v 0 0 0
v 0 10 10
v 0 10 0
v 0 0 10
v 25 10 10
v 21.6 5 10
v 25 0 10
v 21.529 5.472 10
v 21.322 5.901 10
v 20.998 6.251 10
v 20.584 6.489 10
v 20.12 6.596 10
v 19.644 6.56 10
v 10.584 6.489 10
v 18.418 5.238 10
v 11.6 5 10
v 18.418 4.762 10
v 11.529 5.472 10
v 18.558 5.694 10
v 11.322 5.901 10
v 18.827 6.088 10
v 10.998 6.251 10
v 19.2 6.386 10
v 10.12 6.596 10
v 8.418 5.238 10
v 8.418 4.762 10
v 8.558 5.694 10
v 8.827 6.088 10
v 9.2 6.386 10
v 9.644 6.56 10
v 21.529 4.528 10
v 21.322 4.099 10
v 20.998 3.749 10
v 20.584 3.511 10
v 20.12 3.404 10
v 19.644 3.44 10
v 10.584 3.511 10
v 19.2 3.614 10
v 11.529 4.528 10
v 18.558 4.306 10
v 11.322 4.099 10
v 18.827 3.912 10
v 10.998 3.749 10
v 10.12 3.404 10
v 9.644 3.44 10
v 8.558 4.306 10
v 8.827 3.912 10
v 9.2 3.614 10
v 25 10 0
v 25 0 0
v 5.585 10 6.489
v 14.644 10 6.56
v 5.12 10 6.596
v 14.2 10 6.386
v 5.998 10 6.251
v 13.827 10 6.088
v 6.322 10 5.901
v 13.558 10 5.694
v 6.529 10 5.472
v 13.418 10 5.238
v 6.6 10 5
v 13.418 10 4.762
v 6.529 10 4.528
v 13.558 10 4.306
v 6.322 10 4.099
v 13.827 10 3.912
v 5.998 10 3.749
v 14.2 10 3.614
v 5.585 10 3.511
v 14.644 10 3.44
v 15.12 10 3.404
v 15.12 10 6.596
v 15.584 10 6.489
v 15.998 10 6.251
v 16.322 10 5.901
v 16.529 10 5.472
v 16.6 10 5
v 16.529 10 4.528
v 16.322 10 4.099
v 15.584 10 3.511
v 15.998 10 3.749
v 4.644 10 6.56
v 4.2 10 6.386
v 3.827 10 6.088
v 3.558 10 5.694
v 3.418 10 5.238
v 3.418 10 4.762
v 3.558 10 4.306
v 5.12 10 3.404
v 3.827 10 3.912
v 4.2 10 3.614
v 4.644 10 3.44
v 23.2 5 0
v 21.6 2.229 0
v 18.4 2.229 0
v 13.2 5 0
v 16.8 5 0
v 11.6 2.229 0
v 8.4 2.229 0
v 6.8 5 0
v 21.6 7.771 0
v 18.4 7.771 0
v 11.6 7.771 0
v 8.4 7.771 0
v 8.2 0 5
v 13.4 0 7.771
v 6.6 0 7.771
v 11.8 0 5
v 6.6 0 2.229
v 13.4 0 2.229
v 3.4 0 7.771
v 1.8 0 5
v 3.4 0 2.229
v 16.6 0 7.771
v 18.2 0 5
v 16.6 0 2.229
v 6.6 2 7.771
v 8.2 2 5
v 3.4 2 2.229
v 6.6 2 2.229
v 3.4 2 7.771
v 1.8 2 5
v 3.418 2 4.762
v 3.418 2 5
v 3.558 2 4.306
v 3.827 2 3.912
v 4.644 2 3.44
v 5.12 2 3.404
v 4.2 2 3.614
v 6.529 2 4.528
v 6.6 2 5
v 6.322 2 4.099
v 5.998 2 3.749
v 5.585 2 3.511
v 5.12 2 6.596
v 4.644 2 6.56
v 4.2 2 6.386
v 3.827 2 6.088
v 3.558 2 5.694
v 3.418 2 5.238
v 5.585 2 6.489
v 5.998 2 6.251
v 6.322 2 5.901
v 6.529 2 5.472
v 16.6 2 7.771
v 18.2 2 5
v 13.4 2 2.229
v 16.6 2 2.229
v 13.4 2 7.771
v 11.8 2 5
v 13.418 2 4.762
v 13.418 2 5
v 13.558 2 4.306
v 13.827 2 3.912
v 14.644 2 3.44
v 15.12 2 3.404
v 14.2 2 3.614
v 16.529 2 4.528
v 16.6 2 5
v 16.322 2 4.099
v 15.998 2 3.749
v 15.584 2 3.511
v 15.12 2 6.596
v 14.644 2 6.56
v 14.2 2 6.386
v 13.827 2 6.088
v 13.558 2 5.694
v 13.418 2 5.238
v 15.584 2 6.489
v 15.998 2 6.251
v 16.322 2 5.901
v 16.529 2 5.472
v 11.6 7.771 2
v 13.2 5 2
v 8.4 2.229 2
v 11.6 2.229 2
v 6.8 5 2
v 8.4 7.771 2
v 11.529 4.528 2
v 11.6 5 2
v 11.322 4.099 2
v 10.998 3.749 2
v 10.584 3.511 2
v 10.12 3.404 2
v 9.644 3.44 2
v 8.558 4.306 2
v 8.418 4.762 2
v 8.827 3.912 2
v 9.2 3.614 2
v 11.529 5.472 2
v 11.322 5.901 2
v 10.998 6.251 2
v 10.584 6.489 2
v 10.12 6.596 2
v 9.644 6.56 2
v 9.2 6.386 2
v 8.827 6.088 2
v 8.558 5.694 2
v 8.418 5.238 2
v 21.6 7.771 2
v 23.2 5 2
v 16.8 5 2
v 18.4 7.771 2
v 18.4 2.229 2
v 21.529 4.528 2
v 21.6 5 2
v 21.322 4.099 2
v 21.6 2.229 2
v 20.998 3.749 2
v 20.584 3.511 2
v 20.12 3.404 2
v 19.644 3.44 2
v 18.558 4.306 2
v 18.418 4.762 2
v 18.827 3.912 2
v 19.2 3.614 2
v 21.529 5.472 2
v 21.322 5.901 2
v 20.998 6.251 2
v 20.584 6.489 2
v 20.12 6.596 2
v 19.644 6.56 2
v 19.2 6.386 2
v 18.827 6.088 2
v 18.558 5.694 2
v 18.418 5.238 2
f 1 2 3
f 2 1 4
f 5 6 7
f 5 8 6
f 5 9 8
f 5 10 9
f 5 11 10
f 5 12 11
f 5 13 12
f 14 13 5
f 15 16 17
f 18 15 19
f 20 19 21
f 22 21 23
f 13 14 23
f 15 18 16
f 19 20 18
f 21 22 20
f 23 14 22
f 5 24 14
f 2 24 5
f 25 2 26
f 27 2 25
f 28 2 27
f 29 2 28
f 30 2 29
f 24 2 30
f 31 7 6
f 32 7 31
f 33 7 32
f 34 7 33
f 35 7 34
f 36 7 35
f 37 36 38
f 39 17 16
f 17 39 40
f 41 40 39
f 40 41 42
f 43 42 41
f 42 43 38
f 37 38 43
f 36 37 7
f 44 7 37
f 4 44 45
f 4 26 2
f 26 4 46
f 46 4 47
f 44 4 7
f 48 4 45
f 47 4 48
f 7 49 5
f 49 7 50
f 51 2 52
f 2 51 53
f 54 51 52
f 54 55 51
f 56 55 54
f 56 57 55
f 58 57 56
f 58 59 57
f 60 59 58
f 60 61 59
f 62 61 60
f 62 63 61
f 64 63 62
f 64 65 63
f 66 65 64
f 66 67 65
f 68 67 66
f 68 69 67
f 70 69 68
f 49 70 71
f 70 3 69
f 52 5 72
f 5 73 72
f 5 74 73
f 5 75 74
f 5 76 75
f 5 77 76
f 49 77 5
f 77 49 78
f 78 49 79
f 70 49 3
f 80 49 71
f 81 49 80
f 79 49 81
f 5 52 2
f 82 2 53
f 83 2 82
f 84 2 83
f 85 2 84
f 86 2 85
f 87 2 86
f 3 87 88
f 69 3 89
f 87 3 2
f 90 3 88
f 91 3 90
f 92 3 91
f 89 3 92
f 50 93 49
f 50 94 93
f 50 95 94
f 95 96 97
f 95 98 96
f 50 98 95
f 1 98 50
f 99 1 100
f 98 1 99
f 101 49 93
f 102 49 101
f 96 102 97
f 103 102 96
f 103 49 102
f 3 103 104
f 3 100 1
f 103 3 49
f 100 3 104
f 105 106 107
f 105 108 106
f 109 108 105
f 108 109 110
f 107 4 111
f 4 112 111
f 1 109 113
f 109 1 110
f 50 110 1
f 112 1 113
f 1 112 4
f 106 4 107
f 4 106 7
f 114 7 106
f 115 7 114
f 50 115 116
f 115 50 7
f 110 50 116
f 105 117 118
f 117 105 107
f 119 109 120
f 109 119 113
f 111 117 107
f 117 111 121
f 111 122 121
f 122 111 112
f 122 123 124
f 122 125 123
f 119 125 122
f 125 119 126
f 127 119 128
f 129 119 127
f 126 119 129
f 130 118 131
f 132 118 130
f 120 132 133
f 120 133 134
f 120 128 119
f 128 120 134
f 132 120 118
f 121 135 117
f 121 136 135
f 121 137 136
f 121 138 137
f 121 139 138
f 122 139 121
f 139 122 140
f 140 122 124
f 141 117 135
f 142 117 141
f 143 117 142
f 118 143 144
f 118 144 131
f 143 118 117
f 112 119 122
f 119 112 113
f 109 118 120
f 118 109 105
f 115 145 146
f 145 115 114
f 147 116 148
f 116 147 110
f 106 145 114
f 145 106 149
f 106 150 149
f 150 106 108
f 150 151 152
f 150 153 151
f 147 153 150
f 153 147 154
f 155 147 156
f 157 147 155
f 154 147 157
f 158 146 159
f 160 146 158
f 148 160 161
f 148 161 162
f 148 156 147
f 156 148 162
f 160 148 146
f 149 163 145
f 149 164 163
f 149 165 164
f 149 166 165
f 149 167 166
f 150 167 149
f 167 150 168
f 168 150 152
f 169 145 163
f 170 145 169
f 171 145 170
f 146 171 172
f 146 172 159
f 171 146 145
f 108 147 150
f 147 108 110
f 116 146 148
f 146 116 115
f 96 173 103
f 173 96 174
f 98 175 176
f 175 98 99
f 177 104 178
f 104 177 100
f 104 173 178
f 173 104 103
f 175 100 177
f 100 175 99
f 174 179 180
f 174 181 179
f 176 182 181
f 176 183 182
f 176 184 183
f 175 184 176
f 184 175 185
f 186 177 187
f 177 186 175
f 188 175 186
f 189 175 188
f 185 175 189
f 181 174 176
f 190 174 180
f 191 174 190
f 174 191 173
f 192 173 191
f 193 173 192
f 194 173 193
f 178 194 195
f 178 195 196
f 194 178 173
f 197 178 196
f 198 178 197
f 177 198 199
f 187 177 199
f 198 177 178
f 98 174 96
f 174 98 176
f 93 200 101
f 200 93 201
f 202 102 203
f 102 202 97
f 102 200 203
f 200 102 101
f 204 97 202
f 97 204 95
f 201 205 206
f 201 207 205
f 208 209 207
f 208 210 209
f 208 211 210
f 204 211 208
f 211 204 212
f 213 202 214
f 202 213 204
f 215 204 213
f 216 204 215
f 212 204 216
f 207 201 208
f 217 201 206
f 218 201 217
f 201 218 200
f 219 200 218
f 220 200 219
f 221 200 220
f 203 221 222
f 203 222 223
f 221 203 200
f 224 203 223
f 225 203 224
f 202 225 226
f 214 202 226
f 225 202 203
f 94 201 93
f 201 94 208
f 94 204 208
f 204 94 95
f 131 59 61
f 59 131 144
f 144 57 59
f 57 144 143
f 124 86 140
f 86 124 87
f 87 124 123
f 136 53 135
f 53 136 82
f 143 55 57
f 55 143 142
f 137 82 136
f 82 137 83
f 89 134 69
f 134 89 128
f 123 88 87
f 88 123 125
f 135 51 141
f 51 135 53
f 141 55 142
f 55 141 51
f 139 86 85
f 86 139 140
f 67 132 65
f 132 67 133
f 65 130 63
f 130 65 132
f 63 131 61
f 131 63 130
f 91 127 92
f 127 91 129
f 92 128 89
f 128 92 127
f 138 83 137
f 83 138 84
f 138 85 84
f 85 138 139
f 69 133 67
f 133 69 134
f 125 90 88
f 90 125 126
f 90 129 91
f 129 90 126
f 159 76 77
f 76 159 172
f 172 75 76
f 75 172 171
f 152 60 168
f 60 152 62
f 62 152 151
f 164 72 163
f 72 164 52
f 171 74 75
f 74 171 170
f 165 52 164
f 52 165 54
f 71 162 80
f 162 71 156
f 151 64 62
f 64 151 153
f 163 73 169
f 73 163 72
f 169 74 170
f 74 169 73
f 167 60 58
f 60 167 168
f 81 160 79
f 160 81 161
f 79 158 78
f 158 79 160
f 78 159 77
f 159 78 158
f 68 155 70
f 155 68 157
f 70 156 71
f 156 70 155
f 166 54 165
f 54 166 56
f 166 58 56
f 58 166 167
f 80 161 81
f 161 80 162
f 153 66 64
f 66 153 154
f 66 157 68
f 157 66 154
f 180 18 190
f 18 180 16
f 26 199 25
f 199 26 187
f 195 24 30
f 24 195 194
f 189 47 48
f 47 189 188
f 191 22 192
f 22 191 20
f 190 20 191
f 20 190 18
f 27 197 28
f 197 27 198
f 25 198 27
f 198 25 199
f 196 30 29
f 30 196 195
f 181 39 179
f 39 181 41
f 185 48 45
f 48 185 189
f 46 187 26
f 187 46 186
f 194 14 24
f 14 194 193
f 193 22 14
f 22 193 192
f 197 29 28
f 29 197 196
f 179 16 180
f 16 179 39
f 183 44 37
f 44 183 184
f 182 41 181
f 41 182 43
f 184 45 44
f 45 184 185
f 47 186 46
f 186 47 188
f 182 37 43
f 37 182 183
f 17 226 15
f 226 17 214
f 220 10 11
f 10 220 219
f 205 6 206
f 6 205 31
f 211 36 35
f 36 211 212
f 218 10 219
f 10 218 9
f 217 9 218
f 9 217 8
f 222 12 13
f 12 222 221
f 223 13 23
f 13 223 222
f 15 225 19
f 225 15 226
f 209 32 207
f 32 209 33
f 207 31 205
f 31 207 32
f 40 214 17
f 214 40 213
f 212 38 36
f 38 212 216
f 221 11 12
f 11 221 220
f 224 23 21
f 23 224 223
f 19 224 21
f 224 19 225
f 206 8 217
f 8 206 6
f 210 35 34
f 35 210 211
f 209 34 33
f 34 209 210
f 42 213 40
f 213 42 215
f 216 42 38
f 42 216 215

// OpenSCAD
$fa=1;
$fs=1.5;

module StringGrabber(length = 25, bolt_radius=3.2, screw_radius=1.6) {
    difference() {
        cube([length, 10, 10]);
        translate([length/5,2,5]) rotate([90,0,0]) 
            cylinder(r=bolt_radius, h=3, $fn=6);
        translate([3*length/5,2,5]) rotate([90,0,0]) 
            cylinder(r=bolt_radius, h=3, $fn=6);
        translate([2*length/5,5,-1]) cylinder(r=bolt_radius, h=3, $fn=6);
        translate([4*length/5,5,-1]) cylinder(r=bolt_radius, h=3, $fn=6);
        translate([length/5,11,5]) rotate([90,0,0]) cylinder(r=screw_radius, h=12);
        translate([3*length/5,11,5]) rotate([90,0,0]) cylinder(r=screw_radius, h=12);
        translate([2*length/5,5,-1]) cylinder(r=screw_radius, h=12);
        translate([4*length/5,5,-1]) cylinder(r=screw_radius, h=12);
    }
}

StringGrabber($fa=.5, $fs=.5);
